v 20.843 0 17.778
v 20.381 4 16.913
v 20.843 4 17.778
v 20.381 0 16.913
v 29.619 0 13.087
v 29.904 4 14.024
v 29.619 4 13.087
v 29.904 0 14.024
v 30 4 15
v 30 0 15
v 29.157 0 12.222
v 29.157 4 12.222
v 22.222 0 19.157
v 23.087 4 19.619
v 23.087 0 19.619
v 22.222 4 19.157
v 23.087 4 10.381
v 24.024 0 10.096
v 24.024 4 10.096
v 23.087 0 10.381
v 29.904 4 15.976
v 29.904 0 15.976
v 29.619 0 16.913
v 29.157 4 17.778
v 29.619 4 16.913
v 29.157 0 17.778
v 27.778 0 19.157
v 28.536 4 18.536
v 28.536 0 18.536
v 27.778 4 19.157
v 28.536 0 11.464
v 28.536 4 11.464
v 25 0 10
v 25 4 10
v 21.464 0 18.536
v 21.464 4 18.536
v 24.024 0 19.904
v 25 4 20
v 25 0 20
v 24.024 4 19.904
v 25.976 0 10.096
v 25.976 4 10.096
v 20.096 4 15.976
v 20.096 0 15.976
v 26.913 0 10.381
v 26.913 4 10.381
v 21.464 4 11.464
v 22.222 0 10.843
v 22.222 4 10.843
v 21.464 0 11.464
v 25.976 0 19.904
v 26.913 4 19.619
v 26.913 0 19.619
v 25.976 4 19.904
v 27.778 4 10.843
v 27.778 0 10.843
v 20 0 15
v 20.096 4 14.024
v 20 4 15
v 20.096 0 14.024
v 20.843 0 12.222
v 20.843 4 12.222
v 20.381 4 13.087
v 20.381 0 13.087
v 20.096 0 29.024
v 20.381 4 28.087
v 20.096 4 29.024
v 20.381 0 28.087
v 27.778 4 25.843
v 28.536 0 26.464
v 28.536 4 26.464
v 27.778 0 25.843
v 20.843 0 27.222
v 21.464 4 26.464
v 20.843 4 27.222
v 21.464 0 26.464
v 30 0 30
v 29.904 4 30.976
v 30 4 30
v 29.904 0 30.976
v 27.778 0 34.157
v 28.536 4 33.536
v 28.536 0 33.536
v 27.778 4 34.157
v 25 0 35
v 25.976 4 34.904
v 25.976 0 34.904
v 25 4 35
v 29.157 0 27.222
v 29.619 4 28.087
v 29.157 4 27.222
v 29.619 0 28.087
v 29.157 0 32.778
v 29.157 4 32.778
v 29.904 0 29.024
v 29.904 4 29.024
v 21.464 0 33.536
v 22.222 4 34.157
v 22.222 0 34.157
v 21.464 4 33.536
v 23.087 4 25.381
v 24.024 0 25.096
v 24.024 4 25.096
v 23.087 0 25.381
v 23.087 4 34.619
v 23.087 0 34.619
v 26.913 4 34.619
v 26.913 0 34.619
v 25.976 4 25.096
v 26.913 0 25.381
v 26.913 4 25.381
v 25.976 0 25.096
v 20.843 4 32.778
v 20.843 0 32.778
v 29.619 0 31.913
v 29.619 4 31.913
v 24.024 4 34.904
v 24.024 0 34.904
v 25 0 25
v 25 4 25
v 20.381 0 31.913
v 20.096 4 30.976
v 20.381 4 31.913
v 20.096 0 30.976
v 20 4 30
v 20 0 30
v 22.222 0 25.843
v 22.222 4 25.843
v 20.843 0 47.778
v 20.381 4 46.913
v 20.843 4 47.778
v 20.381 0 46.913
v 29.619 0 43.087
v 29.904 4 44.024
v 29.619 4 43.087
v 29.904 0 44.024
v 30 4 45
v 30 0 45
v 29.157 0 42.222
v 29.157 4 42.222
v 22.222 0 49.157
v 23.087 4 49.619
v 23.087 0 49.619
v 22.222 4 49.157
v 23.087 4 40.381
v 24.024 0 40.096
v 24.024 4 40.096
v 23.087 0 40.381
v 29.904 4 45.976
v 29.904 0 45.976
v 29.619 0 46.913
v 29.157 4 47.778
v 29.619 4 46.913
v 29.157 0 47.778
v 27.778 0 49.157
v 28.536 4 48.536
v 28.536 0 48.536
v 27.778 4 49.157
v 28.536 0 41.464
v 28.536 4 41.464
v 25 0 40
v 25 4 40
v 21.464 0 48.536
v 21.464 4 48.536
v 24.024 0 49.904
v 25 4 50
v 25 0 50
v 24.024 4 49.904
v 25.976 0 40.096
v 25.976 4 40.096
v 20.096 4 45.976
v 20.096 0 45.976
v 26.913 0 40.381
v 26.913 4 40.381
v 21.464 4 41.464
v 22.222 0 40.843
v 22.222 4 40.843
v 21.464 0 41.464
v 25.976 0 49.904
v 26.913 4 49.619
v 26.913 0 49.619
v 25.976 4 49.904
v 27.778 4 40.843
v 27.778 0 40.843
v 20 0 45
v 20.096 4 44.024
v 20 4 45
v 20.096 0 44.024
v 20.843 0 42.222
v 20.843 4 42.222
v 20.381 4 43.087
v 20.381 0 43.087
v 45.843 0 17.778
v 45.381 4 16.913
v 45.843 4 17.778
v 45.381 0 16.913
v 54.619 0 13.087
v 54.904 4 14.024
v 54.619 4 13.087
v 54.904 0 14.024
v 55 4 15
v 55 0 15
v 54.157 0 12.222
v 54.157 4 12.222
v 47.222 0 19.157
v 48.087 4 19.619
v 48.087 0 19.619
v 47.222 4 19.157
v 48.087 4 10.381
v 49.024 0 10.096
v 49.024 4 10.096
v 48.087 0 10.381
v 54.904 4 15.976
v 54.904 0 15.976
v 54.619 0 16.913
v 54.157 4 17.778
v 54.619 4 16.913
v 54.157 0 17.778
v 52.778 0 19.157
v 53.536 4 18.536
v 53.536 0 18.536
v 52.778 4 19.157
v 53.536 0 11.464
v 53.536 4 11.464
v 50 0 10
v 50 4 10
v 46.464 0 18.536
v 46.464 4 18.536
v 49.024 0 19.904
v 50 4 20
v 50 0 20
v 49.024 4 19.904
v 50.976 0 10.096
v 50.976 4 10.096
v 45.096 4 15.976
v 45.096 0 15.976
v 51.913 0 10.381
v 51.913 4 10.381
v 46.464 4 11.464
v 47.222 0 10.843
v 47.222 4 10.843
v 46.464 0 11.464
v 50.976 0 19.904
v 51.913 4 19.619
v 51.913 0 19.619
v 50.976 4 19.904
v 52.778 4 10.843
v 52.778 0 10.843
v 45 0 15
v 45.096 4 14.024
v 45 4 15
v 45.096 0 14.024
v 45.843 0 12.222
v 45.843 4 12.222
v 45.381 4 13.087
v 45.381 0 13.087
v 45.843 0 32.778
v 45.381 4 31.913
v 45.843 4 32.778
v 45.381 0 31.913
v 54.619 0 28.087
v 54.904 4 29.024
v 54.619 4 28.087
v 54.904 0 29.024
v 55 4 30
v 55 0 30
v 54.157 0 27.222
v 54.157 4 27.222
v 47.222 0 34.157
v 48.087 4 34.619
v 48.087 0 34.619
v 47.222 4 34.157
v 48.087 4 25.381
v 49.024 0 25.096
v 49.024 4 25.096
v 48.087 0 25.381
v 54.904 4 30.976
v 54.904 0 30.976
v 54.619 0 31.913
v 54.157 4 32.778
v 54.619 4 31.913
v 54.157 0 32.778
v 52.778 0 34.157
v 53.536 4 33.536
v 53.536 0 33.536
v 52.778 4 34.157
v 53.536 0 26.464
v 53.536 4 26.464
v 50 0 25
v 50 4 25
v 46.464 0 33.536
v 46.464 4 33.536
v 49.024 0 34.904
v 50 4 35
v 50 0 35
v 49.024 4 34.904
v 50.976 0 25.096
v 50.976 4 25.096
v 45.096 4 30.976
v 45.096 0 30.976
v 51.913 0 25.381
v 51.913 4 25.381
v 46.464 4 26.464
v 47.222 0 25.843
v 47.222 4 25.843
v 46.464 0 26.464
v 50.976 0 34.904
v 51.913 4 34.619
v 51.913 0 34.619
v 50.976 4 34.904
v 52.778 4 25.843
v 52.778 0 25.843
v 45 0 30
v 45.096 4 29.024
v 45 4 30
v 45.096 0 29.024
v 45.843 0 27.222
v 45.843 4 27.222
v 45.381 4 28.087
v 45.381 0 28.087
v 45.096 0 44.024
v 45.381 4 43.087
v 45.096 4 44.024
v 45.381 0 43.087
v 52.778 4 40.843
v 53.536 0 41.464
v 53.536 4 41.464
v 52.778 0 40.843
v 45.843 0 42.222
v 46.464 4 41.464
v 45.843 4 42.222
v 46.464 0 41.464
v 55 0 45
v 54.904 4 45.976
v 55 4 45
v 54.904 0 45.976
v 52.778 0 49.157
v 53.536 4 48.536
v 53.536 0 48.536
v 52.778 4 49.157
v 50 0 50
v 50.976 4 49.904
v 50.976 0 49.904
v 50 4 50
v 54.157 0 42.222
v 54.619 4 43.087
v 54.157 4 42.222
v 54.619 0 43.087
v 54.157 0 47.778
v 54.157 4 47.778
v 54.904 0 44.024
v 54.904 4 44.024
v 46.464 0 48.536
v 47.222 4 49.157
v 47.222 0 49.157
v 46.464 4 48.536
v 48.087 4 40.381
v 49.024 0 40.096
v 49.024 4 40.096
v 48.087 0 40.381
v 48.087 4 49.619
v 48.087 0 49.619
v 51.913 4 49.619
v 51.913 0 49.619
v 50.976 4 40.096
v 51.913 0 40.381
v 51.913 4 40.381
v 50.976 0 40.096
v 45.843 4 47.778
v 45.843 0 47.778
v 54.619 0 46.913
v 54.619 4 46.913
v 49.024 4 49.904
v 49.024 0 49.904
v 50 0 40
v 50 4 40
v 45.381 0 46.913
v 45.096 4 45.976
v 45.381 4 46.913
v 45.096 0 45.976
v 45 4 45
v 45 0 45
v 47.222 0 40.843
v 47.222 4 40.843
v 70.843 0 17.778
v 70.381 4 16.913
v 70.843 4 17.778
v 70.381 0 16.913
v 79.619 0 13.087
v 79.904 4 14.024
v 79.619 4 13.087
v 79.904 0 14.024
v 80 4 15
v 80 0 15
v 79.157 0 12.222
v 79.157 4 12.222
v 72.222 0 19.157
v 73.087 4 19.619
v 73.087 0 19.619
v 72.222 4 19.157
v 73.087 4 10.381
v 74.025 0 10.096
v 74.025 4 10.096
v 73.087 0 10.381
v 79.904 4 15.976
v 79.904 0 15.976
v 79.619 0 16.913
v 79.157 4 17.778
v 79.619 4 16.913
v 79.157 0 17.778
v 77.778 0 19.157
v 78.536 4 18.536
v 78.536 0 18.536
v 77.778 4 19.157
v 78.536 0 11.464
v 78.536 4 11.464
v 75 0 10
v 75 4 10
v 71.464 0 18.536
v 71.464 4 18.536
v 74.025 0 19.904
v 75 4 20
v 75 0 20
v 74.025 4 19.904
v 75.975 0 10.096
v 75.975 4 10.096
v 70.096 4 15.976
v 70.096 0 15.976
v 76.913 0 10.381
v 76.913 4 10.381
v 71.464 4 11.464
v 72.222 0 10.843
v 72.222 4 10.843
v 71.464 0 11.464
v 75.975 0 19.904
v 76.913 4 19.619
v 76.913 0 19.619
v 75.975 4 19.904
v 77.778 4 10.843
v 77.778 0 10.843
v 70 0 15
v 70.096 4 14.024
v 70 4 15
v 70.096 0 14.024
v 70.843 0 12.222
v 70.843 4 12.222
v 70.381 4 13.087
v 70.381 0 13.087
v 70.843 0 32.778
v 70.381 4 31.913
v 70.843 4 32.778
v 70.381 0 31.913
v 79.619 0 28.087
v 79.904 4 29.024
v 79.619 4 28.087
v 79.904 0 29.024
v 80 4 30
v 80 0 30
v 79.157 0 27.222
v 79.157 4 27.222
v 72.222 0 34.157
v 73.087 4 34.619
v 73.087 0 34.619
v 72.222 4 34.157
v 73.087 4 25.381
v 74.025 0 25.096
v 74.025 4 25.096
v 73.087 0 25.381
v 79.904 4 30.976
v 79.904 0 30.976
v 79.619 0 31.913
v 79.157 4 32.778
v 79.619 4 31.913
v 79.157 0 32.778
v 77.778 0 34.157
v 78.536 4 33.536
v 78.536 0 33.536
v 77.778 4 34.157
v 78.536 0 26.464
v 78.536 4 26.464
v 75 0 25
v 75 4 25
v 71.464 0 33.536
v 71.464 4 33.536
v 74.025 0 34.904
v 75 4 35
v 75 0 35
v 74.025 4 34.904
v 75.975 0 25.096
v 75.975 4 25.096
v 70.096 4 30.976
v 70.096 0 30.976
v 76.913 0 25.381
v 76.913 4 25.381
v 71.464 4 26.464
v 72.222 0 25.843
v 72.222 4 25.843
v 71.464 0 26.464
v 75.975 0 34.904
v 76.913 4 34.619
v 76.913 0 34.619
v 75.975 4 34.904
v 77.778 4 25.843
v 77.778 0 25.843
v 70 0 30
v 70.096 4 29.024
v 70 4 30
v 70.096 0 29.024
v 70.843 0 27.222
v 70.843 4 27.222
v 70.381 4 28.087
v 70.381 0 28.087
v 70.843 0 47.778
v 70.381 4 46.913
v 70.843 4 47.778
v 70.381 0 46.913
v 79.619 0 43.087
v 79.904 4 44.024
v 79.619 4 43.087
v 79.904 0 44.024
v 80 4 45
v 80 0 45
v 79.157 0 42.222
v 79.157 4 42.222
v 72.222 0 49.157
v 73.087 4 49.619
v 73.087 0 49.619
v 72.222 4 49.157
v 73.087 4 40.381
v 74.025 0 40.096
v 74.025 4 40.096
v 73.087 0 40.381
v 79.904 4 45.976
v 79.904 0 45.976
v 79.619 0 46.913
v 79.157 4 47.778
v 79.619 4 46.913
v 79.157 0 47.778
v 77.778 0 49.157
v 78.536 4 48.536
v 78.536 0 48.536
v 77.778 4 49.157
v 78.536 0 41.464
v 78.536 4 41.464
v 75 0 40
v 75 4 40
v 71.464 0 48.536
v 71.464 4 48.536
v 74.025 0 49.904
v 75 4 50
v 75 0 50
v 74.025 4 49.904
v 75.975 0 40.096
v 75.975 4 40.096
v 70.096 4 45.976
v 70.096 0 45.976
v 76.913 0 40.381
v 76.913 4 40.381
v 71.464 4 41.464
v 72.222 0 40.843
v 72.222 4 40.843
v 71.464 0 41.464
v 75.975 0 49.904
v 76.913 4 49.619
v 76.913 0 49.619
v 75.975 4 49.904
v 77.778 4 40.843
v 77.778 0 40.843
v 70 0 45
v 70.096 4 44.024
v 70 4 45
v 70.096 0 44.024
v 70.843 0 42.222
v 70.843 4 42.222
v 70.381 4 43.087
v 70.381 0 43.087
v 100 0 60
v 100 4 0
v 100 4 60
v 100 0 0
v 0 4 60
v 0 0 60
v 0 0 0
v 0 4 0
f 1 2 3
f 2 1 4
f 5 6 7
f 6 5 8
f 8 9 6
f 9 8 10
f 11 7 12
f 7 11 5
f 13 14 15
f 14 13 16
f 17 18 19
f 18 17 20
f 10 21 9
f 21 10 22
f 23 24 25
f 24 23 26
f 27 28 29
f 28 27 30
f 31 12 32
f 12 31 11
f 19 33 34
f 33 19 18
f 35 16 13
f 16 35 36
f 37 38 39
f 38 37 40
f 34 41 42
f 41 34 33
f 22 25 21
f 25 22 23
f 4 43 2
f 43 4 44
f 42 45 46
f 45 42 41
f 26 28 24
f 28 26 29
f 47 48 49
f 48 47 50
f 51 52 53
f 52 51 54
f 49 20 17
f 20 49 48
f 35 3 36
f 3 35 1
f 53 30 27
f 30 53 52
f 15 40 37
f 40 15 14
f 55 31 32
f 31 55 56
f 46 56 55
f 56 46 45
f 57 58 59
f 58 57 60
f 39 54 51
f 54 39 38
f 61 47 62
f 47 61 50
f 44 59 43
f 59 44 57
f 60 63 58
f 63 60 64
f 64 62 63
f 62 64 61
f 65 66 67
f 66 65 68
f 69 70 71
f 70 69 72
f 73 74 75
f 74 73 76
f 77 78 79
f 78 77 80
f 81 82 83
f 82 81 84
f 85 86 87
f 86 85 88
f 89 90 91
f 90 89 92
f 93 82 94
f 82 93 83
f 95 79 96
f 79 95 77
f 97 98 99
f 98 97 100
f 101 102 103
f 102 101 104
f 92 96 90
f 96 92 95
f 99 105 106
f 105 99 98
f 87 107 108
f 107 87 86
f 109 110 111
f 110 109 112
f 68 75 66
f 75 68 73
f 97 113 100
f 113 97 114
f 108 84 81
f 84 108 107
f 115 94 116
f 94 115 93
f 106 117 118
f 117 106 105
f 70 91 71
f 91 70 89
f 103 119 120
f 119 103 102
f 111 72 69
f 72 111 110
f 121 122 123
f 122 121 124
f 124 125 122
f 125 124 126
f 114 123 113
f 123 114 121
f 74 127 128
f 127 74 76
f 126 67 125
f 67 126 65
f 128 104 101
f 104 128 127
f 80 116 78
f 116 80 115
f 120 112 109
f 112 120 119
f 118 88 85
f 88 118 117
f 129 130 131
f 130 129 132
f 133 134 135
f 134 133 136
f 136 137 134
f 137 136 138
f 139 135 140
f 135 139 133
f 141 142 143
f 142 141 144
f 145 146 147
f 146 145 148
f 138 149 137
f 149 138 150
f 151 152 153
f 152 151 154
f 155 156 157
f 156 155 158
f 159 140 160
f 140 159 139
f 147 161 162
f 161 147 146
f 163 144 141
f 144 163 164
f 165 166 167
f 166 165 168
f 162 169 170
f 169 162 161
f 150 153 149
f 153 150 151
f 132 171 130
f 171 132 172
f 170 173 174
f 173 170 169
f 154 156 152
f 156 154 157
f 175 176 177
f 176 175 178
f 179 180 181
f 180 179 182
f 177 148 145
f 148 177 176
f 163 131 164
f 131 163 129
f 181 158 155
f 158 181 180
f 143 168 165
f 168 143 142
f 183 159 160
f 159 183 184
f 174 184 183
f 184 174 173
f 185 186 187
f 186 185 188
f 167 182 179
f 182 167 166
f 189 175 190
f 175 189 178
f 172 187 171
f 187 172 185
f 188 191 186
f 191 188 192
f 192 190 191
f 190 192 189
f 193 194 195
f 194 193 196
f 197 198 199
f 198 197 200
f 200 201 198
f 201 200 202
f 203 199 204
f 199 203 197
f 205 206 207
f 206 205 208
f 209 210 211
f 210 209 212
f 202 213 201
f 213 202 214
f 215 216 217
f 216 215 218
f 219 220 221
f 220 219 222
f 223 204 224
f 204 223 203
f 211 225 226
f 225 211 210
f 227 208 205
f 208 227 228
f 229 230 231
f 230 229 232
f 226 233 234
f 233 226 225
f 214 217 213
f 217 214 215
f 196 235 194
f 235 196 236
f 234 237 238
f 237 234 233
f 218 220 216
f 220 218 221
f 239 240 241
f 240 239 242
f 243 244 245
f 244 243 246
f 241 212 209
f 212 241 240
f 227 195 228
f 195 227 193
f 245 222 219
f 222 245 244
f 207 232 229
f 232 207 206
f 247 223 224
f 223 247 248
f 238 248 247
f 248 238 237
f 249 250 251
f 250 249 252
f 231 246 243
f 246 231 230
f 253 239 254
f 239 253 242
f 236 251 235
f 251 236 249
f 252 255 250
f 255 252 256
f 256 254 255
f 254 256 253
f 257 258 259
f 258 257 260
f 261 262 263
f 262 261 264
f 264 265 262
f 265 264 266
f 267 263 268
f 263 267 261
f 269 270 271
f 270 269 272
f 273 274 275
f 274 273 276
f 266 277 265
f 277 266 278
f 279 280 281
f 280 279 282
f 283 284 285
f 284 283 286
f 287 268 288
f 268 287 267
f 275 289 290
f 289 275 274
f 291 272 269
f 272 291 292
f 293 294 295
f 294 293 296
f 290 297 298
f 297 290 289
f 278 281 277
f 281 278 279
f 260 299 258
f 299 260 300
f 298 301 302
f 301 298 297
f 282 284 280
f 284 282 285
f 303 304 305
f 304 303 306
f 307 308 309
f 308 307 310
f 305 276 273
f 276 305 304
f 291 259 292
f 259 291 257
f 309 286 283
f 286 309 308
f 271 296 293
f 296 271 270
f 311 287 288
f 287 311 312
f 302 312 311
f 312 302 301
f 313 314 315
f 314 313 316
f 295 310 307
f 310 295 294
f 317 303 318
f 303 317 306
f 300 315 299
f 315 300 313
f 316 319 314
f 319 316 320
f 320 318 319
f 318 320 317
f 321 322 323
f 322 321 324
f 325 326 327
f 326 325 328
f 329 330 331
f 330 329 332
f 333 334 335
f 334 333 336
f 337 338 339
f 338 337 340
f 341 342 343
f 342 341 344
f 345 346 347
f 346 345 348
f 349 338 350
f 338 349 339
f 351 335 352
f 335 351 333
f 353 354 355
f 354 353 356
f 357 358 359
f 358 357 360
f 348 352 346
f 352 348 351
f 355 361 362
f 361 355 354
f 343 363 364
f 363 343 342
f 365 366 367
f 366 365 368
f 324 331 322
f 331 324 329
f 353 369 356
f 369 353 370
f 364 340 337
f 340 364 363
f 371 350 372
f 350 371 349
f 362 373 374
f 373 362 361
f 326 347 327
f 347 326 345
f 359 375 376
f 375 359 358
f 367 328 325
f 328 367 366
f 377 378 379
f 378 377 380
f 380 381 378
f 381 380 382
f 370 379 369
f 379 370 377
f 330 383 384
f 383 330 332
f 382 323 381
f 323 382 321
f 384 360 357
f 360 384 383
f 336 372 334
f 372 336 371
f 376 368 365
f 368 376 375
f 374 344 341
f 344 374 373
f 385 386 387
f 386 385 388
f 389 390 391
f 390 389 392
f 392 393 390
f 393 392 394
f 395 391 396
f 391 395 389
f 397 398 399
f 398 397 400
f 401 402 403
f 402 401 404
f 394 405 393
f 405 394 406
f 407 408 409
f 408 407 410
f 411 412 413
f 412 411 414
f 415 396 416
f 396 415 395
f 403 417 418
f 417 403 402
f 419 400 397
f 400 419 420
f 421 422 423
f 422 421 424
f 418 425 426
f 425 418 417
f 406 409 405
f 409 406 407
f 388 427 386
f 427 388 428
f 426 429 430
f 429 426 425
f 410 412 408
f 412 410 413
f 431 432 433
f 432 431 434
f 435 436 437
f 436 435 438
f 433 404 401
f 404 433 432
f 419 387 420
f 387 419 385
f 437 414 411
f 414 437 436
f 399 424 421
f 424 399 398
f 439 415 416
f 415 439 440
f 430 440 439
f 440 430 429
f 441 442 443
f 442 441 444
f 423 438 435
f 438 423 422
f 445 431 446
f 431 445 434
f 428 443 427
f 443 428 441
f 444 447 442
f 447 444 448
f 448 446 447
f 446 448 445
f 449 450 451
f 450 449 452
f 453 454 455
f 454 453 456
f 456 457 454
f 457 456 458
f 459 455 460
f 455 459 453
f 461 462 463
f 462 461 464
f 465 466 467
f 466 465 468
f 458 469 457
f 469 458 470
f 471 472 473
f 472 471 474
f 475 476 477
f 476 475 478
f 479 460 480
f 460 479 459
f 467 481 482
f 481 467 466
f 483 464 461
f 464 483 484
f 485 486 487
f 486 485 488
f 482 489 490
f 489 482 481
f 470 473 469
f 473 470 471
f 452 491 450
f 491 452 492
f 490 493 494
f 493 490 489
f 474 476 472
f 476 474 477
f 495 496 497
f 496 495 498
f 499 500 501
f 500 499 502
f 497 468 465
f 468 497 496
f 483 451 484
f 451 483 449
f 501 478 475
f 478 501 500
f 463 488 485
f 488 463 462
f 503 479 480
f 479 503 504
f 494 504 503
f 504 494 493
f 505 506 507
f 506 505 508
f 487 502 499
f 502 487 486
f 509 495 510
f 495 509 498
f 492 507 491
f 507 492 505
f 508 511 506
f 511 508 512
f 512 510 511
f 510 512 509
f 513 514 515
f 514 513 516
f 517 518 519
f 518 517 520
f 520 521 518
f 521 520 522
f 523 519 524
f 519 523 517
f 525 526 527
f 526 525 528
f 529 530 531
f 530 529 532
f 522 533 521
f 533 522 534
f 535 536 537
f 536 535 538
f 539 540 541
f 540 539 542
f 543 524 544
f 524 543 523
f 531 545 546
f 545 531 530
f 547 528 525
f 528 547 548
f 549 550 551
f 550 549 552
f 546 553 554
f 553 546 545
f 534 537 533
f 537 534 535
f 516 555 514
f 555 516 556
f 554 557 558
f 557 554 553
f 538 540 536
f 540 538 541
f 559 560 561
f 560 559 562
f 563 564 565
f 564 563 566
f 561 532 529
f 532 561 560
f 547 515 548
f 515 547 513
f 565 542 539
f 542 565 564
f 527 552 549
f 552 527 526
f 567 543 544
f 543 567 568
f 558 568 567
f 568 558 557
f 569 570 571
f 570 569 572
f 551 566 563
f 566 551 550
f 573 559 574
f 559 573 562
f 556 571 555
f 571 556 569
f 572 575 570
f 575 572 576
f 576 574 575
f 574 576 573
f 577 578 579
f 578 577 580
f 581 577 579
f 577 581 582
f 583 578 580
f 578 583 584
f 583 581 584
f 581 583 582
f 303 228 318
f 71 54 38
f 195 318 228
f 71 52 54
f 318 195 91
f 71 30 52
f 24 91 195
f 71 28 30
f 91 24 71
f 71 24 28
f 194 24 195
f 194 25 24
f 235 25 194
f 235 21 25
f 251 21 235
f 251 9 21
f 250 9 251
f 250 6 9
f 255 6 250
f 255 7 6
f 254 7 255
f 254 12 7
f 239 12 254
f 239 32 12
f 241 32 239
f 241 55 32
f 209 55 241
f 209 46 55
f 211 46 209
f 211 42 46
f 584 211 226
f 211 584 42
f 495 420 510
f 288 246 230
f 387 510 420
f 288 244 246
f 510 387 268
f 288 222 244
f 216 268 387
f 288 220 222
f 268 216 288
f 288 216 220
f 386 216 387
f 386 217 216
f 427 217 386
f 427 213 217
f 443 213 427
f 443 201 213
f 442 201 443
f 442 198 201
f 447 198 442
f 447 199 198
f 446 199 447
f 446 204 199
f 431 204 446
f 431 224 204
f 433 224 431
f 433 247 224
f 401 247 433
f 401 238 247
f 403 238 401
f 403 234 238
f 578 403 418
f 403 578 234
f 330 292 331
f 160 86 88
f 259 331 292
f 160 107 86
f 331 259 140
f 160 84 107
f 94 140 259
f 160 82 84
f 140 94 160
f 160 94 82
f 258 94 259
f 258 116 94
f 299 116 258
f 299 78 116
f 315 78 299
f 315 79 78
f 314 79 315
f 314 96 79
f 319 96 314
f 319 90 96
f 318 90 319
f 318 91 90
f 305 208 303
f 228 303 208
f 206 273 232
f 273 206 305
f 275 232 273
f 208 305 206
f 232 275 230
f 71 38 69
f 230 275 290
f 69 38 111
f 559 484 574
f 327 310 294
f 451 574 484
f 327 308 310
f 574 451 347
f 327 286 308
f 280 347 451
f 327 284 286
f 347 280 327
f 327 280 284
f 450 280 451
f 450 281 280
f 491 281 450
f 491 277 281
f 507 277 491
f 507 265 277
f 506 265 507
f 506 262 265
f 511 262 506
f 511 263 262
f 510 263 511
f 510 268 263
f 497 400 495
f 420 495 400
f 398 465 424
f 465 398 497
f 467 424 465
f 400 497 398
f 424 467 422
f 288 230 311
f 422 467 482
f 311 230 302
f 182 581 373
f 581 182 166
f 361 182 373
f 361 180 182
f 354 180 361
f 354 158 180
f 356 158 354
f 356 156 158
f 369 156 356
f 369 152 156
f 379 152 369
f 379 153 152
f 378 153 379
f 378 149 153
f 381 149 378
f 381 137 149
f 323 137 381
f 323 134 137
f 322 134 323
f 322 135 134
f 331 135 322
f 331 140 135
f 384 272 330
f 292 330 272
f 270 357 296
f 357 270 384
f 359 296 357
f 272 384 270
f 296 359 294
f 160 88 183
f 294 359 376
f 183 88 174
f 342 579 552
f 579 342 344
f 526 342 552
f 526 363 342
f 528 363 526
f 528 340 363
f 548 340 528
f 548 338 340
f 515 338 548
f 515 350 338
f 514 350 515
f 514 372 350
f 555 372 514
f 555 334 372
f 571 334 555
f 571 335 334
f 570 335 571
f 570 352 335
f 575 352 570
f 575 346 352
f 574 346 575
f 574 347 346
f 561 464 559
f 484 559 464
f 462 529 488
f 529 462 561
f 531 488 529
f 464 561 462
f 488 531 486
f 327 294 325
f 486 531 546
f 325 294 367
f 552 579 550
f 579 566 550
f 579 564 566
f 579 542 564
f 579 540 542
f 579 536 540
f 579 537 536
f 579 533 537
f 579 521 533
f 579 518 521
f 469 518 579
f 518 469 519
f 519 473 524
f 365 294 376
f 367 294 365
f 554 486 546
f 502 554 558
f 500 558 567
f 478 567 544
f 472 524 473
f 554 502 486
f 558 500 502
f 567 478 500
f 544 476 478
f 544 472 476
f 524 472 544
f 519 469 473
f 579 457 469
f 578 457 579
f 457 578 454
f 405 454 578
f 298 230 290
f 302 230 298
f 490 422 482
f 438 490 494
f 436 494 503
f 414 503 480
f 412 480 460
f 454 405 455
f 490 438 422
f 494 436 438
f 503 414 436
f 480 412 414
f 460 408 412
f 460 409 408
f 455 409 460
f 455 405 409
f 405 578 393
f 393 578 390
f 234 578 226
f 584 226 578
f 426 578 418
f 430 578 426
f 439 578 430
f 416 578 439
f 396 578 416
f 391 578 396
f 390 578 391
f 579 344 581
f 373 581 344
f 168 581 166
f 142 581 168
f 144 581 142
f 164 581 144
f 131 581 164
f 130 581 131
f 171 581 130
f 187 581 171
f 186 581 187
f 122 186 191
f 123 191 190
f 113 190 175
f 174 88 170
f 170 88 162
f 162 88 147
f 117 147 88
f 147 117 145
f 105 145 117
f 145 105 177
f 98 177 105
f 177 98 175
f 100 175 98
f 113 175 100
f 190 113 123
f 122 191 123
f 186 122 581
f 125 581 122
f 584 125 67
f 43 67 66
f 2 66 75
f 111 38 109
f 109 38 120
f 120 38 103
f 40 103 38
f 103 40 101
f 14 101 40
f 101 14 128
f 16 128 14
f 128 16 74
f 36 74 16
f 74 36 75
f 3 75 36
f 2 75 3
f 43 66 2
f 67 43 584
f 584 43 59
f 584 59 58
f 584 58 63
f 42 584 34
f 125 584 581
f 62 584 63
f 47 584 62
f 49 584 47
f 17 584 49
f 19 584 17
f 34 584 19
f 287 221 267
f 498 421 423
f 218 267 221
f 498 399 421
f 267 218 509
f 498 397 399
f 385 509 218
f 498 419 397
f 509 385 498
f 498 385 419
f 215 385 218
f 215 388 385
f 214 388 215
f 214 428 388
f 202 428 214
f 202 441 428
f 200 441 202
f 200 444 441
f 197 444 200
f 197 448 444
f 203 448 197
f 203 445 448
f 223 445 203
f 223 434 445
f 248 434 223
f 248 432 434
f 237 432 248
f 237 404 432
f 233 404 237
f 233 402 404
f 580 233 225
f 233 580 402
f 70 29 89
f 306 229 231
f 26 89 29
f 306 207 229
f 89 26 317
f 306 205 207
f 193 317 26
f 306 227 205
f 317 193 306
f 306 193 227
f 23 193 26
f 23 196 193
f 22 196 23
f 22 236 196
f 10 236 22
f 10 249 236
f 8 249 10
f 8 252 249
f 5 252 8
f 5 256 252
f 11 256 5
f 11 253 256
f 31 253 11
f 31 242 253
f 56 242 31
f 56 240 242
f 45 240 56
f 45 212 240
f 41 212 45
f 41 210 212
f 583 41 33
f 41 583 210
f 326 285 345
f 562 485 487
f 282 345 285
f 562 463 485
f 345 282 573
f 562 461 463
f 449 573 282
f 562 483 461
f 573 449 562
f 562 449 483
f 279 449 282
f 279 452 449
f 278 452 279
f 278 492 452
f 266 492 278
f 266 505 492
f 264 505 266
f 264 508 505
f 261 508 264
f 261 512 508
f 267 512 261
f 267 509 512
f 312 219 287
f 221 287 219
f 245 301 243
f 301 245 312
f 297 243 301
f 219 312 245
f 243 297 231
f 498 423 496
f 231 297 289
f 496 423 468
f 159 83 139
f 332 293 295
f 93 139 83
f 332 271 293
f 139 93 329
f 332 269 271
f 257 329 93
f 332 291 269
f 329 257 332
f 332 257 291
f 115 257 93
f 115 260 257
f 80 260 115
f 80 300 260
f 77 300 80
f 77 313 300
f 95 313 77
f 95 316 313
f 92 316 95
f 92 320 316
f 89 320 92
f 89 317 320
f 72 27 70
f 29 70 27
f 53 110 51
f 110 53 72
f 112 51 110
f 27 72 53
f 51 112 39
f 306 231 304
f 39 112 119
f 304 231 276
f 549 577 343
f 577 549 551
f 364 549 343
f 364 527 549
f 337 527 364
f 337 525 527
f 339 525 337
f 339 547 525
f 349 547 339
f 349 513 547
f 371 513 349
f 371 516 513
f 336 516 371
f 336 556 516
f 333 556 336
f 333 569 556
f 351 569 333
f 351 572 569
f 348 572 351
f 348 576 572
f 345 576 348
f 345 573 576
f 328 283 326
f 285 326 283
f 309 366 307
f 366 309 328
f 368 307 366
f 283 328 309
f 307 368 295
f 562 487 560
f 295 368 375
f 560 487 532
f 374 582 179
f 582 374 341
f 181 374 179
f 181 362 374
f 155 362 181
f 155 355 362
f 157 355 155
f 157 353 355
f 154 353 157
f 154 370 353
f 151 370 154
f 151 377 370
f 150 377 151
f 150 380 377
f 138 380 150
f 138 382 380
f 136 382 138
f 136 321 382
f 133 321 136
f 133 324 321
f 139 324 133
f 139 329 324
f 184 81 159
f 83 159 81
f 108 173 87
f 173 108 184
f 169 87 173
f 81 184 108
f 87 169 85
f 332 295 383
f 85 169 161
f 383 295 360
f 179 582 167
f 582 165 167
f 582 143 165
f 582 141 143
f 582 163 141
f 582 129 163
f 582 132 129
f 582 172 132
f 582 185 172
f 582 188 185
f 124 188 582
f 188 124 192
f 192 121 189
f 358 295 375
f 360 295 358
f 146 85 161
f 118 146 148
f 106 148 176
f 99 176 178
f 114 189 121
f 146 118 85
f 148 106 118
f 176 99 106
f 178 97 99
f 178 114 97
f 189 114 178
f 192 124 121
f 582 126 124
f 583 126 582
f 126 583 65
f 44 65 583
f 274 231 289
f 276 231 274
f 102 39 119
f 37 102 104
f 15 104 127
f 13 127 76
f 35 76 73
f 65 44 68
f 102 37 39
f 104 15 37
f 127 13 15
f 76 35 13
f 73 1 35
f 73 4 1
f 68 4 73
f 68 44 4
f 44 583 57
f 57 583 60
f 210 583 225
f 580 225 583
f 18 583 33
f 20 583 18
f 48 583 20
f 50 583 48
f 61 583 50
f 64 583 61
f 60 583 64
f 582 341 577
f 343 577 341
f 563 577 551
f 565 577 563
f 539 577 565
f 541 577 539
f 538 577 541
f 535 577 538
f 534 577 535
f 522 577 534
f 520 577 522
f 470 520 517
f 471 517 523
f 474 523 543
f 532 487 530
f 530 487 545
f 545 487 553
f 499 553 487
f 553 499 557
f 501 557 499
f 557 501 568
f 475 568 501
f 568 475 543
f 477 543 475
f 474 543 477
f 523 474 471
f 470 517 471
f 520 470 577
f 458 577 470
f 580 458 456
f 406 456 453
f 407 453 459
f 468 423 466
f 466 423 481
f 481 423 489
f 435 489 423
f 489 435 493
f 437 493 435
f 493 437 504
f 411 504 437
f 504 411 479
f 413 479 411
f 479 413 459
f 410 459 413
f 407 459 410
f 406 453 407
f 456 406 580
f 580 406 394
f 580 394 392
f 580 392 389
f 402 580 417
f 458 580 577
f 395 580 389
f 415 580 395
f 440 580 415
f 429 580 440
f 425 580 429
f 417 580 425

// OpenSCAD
// Vent grille: 100x4x60 plate (Y thin), nine d10 holes on 25/15 grid.
difference() {
  cube([100,4,60]);
  for (x=[25,50,75], z=[15,30,45])
    translate([x,-1,z]) rotate([-90,0,0]) cylinder(d=10,h=6,$fn=32);
}
